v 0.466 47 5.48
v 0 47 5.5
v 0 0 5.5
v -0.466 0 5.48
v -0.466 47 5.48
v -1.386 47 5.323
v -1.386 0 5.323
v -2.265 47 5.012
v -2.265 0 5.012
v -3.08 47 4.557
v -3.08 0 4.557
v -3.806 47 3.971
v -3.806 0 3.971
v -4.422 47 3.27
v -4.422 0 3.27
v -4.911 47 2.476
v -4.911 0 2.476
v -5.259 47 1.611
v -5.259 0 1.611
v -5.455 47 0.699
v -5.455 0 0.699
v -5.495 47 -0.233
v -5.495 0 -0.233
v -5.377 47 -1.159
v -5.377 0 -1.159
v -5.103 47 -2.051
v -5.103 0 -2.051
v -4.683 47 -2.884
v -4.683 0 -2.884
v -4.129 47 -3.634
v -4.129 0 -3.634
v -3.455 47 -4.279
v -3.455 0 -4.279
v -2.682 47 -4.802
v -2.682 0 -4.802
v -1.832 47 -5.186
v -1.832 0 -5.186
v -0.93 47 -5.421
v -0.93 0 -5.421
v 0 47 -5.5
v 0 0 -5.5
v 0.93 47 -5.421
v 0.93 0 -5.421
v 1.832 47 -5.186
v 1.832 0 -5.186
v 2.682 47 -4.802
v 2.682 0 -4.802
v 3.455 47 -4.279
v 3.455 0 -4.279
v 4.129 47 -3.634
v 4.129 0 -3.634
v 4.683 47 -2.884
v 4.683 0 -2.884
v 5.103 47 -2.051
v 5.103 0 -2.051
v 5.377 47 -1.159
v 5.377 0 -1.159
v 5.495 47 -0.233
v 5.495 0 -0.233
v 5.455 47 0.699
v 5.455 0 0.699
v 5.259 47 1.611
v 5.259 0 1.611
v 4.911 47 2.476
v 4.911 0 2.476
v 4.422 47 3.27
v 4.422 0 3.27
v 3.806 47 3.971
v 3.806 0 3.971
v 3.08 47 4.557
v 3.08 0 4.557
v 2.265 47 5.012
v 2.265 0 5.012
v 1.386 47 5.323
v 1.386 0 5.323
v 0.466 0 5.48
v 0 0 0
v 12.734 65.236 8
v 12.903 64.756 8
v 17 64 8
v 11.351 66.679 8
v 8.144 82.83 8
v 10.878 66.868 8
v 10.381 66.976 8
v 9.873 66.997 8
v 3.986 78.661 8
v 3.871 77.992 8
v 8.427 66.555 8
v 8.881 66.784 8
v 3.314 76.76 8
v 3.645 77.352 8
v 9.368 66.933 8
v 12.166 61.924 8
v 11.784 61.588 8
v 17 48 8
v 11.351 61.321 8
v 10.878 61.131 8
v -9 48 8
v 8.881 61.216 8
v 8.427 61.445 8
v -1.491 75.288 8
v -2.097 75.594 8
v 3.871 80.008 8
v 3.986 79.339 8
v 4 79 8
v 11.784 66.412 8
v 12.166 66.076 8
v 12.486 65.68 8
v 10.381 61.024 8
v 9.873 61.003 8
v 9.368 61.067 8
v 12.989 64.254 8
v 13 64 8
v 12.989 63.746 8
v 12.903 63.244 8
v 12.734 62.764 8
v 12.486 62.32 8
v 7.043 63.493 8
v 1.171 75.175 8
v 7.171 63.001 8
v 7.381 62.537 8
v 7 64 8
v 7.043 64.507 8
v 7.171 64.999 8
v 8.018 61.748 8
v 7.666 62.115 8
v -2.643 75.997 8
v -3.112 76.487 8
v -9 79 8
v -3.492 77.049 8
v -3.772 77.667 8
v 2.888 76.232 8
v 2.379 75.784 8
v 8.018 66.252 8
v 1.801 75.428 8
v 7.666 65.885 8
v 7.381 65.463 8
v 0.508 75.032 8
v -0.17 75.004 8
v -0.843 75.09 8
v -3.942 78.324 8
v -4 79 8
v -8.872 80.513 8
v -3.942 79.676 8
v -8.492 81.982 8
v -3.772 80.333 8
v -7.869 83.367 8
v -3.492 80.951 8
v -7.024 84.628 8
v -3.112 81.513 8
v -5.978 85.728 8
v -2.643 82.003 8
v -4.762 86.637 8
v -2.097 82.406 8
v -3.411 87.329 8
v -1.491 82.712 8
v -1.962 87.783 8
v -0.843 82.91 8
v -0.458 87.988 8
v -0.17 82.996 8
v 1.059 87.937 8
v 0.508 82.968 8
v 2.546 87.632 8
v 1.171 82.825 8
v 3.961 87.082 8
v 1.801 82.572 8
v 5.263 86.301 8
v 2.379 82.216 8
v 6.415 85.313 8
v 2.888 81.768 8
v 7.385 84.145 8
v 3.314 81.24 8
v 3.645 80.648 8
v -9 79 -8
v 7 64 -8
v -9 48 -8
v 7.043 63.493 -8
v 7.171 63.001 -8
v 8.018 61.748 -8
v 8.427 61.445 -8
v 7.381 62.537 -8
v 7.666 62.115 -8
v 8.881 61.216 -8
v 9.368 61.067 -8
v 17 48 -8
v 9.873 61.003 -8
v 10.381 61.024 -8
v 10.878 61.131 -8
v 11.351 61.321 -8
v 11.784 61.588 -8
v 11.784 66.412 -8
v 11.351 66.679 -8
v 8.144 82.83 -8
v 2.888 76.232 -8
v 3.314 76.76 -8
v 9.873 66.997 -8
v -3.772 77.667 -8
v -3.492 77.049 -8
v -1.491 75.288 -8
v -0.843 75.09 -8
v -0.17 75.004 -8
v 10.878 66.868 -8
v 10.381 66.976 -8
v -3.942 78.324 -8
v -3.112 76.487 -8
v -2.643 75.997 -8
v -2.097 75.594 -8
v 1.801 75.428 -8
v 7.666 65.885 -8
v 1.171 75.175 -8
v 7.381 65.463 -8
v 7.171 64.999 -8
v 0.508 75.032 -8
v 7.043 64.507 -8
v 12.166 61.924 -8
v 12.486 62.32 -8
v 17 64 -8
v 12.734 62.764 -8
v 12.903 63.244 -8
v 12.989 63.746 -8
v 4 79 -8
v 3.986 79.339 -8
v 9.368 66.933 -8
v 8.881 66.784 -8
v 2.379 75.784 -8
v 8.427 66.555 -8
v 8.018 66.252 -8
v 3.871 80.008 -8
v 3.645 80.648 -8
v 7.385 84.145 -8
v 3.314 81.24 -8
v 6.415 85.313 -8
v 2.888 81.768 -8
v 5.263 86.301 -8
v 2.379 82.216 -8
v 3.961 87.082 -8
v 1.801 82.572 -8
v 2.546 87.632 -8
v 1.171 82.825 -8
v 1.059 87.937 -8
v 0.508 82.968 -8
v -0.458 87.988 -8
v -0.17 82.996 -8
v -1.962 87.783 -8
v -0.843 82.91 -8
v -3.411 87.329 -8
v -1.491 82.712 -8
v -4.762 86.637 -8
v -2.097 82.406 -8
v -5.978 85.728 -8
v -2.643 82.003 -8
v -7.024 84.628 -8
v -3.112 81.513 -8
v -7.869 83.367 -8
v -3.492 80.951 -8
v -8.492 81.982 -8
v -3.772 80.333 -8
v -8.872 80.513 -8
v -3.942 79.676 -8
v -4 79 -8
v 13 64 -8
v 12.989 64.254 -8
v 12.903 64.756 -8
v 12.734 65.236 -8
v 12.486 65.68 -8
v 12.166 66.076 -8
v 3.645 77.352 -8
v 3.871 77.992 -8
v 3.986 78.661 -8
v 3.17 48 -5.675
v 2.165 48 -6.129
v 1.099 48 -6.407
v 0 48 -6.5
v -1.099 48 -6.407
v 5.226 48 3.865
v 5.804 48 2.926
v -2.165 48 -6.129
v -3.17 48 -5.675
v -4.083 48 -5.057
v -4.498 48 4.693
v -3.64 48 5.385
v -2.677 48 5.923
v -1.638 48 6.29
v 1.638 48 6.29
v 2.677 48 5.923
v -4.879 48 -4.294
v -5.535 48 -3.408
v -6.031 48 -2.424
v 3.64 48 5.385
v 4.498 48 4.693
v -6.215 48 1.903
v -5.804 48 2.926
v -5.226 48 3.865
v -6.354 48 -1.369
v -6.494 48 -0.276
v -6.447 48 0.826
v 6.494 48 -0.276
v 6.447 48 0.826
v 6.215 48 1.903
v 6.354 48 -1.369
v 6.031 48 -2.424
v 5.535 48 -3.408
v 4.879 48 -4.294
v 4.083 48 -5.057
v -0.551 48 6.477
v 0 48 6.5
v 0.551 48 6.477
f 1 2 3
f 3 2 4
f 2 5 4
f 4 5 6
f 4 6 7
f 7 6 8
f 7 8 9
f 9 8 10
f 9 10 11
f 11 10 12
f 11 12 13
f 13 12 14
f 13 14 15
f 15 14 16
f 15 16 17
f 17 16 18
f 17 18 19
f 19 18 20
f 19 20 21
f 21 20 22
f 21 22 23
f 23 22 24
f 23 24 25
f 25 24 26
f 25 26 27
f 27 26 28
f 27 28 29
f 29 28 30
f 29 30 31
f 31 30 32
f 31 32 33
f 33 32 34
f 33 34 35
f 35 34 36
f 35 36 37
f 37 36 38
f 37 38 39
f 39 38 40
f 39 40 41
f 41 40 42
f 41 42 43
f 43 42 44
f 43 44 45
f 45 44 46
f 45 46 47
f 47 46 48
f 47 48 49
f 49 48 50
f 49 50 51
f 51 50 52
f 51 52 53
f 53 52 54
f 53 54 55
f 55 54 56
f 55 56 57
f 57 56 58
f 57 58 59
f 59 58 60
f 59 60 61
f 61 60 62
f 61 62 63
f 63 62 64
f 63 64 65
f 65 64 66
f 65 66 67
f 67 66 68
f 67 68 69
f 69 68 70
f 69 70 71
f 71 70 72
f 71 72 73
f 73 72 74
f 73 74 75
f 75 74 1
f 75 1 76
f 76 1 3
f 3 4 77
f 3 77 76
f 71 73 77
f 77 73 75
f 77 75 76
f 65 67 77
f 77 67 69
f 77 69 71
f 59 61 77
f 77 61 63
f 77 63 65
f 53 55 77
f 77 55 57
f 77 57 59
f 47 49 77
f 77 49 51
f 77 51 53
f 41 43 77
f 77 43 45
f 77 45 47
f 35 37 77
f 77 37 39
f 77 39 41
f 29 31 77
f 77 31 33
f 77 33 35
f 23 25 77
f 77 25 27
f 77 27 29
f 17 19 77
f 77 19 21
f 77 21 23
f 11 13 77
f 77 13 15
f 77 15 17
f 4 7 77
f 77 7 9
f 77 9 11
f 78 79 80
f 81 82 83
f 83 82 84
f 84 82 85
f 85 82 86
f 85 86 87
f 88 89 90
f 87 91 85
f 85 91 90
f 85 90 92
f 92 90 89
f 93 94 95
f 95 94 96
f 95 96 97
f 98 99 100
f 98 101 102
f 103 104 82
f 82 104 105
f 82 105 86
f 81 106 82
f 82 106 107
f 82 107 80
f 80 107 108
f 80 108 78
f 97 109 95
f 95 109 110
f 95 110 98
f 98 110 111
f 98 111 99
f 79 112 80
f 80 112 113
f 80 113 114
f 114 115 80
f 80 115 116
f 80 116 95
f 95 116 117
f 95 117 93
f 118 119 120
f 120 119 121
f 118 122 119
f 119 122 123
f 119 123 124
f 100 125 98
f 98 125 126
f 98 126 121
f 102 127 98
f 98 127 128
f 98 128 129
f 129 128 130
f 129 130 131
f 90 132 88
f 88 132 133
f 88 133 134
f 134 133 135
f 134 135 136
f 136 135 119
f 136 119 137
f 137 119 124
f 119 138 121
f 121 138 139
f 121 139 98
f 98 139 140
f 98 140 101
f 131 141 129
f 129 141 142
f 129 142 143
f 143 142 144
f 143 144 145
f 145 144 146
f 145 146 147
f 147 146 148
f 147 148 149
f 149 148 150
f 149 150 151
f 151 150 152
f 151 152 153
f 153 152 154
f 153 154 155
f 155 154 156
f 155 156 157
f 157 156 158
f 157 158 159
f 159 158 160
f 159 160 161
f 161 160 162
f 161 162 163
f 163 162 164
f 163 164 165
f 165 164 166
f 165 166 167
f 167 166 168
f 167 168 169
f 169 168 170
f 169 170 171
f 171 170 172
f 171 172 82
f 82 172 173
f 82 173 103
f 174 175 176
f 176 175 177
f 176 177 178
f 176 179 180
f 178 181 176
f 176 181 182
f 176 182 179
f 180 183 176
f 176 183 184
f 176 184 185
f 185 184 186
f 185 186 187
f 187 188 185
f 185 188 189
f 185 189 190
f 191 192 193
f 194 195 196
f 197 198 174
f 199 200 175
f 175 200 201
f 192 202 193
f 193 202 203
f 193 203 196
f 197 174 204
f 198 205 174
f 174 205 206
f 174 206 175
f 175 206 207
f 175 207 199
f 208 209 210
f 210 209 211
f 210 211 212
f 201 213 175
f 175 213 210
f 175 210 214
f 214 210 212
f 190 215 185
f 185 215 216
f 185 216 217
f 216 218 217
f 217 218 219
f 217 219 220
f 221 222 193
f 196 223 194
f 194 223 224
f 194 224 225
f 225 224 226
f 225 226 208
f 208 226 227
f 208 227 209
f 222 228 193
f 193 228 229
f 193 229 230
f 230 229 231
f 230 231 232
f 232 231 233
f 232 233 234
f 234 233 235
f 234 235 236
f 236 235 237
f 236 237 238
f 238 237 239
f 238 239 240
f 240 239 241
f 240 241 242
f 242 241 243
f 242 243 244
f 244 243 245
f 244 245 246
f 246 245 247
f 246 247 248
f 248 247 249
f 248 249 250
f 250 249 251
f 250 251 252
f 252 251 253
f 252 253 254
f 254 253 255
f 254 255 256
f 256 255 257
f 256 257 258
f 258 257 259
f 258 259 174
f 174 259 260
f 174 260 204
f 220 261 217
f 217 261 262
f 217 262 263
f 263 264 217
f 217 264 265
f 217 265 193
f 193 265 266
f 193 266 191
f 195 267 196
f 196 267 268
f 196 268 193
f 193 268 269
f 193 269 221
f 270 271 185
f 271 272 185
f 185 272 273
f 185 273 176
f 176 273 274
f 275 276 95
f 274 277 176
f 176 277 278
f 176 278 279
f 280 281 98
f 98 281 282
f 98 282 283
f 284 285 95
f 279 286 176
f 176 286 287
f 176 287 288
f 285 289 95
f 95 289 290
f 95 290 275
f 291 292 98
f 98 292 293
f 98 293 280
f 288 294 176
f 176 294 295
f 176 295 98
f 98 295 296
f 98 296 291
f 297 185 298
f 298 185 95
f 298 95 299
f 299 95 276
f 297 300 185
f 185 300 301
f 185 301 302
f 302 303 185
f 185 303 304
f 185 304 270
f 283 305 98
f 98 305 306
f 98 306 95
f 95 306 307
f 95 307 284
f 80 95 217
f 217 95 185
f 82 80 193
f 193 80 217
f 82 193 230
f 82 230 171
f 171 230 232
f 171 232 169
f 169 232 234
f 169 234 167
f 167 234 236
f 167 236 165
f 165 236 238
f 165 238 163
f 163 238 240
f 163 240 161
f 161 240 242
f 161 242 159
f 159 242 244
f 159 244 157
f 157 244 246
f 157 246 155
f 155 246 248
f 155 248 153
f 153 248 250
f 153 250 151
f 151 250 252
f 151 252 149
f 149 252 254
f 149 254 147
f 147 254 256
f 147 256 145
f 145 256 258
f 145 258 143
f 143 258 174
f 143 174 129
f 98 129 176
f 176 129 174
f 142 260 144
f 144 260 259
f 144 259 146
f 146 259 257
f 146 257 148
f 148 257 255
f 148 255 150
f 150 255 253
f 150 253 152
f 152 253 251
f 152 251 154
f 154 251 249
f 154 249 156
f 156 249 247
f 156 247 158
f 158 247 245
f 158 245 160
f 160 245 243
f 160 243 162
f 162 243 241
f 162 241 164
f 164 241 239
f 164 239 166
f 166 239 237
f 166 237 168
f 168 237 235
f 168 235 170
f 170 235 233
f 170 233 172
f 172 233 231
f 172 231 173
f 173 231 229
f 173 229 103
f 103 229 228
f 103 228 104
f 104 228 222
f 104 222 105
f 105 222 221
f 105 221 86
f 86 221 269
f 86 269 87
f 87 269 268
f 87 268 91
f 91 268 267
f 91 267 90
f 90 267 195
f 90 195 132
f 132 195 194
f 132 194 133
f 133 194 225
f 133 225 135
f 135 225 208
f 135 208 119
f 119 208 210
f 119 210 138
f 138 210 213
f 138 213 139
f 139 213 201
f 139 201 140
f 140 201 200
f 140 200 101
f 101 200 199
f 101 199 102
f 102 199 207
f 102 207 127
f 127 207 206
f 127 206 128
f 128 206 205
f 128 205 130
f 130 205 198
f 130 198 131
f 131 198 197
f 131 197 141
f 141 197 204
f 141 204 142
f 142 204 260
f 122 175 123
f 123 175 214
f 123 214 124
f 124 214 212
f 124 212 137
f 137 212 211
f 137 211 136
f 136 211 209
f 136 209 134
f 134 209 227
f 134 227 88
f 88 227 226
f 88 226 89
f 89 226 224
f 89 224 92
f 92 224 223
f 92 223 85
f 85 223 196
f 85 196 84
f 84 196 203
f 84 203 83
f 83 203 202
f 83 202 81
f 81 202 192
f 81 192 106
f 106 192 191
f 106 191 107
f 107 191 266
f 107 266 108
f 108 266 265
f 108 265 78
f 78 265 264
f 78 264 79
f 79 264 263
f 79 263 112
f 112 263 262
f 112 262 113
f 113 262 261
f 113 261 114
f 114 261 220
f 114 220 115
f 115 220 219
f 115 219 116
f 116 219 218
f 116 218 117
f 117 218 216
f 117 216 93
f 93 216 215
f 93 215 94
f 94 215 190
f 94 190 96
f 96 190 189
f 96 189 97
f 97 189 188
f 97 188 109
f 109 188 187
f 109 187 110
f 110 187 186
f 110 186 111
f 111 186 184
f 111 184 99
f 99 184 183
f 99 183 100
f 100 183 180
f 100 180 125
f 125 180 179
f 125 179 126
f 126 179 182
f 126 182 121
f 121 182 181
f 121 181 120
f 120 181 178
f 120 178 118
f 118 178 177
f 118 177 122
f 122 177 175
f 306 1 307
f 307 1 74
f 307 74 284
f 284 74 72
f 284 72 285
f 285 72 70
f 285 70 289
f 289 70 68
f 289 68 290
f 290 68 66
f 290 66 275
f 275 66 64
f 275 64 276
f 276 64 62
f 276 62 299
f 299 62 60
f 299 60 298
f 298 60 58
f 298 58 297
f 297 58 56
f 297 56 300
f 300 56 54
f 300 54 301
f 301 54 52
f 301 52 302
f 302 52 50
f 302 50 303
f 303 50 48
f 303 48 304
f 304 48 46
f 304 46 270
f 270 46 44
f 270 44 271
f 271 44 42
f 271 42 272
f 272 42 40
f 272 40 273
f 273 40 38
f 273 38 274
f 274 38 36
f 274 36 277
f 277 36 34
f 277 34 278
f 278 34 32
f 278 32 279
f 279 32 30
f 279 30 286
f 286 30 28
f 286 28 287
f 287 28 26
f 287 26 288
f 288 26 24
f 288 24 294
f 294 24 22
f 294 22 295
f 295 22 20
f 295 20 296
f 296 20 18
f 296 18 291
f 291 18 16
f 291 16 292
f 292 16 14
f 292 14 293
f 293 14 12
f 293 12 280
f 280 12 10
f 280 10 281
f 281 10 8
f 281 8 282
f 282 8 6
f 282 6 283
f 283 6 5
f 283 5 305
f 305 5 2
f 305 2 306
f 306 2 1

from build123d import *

# Parameters (mm, degrees)
SKETCH1_R           = 5.5
BOSS_EXTRUDE1_DEPTH = 48
SKETCH3_R           = 4
SKETCH3_R_2         = 3
BOSS_EXTRUDE2_DEPTH = 8
CHAMFER1_SIZE       = 1


with BuildPart() as part:
    # Sketch1 → Boss-Extrude1 (new body)
    with BuildSketch(Plane(origin=(0, 0, 0), x_dir=(1, 0, 0), z_dir=(0, 1, 0))):
        with Locations(Location((0, 0, 0), (0, 0, 270))):
            Circle(SKETCH1_R)
    extrude(amount=BOSS_EXTRUDE1_DEPTH)

    # Sketch3 → Boss-Extrude2 (add, symmetric)
    with BuildSketch(Plane.XY):
        with BuildLine():
            Line((0, 48), (17, 48))
            Line((17, 48), (17, 64))
            Line((17, 64), (8.144295771, 82.830201874))
            ThreePointArc((8.144295771, 82.830201874), (-1.962312164, 87.783469188), (-9, 79))
            Line((-9, 79), (-9, 48))
            Line((-9, 48), (0, 48))
        make_face()
        with Locations((0, 79)):
            Circle(SKETCH3_R, mode=Mode.SUBTRACT)
        with Locations((10, 64)):
            Circle(SKETCH3_R_2, mode=Mode.SUBTRACT)
    extrude(amount=BOSS_EXTRUDE2_DEPTH, both=True)

    # Chamfer1
    chamfer1_edges = [part.edges().sort_by_distance(p)[0] for p in [
        (0, 48, -5.5),
    ]]
    chamfer(chamfer1_edges, length=CHAMFER1_SIZE)


solid = part.part
